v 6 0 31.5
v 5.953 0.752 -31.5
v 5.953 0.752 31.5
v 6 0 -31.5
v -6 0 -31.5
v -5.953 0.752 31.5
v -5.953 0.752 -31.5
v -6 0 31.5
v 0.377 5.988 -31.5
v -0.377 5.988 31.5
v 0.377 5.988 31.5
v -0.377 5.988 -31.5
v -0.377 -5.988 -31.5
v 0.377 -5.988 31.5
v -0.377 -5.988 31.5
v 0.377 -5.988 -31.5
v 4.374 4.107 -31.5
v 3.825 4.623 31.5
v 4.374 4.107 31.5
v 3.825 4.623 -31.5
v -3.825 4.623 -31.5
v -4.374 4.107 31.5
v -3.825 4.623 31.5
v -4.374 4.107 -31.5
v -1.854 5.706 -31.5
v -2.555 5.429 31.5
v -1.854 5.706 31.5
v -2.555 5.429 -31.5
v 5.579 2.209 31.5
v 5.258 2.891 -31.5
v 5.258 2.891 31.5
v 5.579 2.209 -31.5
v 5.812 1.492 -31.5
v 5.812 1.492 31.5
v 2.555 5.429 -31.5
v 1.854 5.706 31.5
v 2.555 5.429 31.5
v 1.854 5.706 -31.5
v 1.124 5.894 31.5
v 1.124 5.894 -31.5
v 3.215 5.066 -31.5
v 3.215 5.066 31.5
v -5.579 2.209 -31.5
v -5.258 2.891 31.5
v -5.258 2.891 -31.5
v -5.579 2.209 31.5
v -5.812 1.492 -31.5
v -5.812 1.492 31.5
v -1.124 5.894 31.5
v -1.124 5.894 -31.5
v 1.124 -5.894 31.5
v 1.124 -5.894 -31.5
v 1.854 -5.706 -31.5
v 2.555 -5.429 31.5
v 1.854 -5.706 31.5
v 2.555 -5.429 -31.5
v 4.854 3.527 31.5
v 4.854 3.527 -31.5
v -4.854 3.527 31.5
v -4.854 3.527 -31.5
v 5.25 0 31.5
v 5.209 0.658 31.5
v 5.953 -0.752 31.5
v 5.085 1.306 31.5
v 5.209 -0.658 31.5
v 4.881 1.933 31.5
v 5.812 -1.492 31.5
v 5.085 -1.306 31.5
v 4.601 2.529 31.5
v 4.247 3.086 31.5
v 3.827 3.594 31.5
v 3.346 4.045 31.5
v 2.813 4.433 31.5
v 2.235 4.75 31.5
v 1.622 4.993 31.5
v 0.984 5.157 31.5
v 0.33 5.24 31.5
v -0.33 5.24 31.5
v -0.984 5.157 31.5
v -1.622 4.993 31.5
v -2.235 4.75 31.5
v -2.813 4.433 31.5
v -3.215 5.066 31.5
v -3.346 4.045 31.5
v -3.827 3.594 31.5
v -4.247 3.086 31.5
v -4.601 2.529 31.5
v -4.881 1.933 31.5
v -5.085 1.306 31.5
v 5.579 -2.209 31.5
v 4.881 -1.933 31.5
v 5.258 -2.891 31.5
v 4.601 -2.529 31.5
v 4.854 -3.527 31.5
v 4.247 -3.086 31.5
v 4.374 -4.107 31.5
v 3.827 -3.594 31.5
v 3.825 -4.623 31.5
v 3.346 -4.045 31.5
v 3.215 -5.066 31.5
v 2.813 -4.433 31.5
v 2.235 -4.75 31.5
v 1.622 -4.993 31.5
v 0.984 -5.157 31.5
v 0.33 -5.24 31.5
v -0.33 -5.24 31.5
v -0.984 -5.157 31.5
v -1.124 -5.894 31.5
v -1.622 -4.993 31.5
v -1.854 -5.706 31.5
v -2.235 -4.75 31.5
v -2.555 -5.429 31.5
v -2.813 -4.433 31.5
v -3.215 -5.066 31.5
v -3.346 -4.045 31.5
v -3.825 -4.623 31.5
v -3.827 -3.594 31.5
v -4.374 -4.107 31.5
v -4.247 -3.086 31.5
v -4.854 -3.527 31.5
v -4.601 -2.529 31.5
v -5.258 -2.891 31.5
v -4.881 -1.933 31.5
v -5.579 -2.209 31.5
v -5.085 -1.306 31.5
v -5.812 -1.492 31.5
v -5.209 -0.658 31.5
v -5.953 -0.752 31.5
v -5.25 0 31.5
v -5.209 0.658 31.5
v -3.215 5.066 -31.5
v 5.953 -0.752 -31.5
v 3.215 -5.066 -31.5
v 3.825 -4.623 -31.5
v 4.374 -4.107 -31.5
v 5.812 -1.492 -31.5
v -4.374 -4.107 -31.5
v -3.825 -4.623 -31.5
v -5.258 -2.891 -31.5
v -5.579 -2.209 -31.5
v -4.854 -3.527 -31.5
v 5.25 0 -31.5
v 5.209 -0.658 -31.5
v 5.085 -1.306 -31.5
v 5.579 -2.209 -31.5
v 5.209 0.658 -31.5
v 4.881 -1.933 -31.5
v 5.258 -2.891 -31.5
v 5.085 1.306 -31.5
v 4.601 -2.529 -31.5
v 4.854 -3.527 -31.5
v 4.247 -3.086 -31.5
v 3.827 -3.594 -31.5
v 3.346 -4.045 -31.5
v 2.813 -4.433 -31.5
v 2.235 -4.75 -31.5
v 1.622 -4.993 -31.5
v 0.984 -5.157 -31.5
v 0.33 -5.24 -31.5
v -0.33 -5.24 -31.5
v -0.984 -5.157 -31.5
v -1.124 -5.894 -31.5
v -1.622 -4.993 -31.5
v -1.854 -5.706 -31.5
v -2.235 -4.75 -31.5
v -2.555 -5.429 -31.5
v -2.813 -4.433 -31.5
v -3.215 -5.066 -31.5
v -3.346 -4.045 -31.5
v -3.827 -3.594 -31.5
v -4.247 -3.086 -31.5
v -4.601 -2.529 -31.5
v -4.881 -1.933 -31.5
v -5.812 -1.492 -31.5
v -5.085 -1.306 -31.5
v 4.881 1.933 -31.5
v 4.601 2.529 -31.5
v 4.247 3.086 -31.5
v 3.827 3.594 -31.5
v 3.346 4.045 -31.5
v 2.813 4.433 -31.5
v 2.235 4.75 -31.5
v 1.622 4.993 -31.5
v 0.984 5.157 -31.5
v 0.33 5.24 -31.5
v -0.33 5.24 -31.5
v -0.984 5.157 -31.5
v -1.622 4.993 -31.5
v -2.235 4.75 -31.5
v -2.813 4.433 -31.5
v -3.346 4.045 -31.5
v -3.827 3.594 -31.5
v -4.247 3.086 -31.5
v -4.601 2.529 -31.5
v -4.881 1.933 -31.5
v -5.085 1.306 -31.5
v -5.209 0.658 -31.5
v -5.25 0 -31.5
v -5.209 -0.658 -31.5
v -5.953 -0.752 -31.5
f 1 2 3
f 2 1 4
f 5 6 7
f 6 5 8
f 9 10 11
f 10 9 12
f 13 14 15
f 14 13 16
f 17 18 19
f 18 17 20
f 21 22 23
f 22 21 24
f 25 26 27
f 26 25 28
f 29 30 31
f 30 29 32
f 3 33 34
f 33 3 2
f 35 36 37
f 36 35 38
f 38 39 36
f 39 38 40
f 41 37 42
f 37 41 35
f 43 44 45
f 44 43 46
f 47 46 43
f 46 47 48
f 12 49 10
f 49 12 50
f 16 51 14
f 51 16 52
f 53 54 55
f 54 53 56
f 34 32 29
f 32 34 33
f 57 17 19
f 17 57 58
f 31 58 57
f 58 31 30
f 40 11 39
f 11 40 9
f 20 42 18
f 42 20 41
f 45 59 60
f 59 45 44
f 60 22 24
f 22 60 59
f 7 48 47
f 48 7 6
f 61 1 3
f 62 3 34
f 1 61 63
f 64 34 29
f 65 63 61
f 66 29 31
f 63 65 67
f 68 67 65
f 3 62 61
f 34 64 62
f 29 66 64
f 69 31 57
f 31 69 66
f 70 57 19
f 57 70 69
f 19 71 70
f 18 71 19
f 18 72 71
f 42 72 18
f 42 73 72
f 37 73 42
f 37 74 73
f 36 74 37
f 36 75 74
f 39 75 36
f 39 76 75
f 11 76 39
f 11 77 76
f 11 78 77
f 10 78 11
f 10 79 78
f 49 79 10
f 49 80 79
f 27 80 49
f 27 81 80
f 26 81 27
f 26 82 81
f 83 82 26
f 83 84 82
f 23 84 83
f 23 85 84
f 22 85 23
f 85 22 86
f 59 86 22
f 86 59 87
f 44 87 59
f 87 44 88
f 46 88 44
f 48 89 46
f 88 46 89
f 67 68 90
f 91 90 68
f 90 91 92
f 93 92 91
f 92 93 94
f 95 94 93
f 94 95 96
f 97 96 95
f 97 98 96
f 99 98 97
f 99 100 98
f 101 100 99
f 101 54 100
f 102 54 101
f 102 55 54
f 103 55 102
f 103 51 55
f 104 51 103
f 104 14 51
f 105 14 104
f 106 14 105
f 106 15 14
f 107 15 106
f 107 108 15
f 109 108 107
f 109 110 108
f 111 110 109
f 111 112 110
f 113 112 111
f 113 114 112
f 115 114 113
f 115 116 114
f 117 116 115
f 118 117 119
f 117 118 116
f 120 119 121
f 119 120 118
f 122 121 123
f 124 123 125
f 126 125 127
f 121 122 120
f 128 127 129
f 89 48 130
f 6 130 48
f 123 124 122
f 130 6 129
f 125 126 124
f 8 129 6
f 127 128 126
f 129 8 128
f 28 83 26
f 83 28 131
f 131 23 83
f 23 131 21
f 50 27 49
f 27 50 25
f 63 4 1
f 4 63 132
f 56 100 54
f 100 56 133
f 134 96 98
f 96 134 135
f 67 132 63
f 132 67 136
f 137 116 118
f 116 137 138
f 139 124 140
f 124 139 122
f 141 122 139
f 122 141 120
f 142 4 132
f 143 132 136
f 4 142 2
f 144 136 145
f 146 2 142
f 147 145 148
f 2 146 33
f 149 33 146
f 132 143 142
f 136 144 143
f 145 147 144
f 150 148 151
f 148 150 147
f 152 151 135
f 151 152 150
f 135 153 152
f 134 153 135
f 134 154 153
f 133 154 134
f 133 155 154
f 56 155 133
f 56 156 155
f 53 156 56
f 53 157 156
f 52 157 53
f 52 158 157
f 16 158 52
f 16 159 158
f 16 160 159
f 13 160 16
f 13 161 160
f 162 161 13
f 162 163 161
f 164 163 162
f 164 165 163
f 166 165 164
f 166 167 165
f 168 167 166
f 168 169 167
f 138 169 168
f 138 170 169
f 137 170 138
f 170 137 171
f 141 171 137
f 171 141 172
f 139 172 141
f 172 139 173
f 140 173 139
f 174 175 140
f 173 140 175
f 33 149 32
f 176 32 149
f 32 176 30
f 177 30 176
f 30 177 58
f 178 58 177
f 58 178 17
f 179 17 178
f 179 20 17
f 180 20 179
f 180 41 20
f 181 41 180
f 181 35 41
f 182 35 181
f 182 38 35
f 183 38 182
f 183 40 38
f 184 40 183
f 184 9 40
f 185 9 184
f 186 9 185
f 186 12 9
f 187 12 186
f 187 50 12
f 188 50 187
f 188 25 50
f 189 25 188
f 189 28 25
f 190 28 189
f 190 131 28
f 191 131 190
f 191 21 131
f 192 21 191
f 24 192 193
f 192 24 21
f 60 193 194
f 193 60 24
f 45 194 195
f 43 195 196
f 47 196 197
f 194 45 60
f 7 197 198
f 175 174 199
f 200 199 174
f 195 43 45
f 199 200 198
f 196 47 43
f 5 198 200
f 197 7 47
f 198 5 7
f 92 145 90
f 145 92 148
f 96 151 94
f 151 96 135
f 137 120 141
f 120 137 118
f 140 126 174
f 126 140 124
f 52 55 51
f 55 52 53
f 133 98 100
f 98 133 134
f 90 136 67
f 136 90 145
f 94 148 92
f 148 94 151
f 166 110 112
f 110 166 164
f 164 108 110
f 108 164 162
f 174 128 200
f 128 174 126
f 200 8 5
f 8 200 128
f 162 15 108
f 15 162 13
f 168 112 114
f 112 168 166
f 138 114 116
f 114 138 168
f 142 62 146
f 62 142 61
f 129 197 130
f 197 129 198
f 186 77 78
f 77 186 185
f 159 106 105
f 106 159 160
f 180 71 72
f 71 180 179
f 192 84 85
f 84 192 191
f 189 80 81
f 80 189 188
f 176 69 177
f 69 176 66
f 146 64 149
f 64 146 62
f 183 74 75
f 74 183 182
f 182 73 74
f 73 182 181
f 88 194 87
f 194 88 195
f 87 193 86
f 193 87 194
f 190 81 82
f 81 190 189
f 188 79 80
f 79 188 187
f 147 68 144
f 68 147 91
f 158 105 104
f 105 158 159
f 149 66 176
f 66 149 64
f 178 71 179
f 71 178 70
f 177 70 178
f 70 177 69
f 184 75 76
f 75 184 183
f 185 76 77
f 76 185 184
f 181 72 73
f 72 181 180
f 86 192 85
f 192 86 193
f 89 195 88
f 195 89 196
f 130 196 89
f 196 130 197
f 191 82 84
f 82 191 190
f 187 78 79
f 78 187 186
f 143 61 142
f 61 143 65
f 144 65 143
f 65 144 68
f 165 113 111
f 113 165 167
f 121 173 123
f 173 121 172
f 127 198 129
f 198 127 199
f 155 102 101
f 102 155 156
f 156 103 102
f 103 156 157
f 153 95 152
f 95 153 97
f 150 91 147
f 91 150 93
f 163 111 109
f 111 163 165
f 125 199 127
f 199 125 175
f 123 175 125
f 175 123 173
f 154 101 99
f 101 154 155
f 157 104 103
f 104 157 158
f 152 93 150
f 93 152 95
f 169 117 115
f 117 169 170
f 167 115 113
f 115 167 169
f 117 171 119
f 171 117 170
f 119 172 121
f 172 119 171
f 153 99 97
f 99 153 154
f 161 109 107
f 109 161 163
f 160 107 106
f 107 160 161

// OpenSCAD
$fn = 50;


difference() {
	union() {
		translate(v = [0, 0, -31.5000000000]) {
			cylinder(h = 63, r = 6.0000000000);
		}
	}
	union() {
		translate(v = [0, 0, -100.0000000000]) {
			cylinder(h = 200, r = 5.2500000000);
		}
	}
}
